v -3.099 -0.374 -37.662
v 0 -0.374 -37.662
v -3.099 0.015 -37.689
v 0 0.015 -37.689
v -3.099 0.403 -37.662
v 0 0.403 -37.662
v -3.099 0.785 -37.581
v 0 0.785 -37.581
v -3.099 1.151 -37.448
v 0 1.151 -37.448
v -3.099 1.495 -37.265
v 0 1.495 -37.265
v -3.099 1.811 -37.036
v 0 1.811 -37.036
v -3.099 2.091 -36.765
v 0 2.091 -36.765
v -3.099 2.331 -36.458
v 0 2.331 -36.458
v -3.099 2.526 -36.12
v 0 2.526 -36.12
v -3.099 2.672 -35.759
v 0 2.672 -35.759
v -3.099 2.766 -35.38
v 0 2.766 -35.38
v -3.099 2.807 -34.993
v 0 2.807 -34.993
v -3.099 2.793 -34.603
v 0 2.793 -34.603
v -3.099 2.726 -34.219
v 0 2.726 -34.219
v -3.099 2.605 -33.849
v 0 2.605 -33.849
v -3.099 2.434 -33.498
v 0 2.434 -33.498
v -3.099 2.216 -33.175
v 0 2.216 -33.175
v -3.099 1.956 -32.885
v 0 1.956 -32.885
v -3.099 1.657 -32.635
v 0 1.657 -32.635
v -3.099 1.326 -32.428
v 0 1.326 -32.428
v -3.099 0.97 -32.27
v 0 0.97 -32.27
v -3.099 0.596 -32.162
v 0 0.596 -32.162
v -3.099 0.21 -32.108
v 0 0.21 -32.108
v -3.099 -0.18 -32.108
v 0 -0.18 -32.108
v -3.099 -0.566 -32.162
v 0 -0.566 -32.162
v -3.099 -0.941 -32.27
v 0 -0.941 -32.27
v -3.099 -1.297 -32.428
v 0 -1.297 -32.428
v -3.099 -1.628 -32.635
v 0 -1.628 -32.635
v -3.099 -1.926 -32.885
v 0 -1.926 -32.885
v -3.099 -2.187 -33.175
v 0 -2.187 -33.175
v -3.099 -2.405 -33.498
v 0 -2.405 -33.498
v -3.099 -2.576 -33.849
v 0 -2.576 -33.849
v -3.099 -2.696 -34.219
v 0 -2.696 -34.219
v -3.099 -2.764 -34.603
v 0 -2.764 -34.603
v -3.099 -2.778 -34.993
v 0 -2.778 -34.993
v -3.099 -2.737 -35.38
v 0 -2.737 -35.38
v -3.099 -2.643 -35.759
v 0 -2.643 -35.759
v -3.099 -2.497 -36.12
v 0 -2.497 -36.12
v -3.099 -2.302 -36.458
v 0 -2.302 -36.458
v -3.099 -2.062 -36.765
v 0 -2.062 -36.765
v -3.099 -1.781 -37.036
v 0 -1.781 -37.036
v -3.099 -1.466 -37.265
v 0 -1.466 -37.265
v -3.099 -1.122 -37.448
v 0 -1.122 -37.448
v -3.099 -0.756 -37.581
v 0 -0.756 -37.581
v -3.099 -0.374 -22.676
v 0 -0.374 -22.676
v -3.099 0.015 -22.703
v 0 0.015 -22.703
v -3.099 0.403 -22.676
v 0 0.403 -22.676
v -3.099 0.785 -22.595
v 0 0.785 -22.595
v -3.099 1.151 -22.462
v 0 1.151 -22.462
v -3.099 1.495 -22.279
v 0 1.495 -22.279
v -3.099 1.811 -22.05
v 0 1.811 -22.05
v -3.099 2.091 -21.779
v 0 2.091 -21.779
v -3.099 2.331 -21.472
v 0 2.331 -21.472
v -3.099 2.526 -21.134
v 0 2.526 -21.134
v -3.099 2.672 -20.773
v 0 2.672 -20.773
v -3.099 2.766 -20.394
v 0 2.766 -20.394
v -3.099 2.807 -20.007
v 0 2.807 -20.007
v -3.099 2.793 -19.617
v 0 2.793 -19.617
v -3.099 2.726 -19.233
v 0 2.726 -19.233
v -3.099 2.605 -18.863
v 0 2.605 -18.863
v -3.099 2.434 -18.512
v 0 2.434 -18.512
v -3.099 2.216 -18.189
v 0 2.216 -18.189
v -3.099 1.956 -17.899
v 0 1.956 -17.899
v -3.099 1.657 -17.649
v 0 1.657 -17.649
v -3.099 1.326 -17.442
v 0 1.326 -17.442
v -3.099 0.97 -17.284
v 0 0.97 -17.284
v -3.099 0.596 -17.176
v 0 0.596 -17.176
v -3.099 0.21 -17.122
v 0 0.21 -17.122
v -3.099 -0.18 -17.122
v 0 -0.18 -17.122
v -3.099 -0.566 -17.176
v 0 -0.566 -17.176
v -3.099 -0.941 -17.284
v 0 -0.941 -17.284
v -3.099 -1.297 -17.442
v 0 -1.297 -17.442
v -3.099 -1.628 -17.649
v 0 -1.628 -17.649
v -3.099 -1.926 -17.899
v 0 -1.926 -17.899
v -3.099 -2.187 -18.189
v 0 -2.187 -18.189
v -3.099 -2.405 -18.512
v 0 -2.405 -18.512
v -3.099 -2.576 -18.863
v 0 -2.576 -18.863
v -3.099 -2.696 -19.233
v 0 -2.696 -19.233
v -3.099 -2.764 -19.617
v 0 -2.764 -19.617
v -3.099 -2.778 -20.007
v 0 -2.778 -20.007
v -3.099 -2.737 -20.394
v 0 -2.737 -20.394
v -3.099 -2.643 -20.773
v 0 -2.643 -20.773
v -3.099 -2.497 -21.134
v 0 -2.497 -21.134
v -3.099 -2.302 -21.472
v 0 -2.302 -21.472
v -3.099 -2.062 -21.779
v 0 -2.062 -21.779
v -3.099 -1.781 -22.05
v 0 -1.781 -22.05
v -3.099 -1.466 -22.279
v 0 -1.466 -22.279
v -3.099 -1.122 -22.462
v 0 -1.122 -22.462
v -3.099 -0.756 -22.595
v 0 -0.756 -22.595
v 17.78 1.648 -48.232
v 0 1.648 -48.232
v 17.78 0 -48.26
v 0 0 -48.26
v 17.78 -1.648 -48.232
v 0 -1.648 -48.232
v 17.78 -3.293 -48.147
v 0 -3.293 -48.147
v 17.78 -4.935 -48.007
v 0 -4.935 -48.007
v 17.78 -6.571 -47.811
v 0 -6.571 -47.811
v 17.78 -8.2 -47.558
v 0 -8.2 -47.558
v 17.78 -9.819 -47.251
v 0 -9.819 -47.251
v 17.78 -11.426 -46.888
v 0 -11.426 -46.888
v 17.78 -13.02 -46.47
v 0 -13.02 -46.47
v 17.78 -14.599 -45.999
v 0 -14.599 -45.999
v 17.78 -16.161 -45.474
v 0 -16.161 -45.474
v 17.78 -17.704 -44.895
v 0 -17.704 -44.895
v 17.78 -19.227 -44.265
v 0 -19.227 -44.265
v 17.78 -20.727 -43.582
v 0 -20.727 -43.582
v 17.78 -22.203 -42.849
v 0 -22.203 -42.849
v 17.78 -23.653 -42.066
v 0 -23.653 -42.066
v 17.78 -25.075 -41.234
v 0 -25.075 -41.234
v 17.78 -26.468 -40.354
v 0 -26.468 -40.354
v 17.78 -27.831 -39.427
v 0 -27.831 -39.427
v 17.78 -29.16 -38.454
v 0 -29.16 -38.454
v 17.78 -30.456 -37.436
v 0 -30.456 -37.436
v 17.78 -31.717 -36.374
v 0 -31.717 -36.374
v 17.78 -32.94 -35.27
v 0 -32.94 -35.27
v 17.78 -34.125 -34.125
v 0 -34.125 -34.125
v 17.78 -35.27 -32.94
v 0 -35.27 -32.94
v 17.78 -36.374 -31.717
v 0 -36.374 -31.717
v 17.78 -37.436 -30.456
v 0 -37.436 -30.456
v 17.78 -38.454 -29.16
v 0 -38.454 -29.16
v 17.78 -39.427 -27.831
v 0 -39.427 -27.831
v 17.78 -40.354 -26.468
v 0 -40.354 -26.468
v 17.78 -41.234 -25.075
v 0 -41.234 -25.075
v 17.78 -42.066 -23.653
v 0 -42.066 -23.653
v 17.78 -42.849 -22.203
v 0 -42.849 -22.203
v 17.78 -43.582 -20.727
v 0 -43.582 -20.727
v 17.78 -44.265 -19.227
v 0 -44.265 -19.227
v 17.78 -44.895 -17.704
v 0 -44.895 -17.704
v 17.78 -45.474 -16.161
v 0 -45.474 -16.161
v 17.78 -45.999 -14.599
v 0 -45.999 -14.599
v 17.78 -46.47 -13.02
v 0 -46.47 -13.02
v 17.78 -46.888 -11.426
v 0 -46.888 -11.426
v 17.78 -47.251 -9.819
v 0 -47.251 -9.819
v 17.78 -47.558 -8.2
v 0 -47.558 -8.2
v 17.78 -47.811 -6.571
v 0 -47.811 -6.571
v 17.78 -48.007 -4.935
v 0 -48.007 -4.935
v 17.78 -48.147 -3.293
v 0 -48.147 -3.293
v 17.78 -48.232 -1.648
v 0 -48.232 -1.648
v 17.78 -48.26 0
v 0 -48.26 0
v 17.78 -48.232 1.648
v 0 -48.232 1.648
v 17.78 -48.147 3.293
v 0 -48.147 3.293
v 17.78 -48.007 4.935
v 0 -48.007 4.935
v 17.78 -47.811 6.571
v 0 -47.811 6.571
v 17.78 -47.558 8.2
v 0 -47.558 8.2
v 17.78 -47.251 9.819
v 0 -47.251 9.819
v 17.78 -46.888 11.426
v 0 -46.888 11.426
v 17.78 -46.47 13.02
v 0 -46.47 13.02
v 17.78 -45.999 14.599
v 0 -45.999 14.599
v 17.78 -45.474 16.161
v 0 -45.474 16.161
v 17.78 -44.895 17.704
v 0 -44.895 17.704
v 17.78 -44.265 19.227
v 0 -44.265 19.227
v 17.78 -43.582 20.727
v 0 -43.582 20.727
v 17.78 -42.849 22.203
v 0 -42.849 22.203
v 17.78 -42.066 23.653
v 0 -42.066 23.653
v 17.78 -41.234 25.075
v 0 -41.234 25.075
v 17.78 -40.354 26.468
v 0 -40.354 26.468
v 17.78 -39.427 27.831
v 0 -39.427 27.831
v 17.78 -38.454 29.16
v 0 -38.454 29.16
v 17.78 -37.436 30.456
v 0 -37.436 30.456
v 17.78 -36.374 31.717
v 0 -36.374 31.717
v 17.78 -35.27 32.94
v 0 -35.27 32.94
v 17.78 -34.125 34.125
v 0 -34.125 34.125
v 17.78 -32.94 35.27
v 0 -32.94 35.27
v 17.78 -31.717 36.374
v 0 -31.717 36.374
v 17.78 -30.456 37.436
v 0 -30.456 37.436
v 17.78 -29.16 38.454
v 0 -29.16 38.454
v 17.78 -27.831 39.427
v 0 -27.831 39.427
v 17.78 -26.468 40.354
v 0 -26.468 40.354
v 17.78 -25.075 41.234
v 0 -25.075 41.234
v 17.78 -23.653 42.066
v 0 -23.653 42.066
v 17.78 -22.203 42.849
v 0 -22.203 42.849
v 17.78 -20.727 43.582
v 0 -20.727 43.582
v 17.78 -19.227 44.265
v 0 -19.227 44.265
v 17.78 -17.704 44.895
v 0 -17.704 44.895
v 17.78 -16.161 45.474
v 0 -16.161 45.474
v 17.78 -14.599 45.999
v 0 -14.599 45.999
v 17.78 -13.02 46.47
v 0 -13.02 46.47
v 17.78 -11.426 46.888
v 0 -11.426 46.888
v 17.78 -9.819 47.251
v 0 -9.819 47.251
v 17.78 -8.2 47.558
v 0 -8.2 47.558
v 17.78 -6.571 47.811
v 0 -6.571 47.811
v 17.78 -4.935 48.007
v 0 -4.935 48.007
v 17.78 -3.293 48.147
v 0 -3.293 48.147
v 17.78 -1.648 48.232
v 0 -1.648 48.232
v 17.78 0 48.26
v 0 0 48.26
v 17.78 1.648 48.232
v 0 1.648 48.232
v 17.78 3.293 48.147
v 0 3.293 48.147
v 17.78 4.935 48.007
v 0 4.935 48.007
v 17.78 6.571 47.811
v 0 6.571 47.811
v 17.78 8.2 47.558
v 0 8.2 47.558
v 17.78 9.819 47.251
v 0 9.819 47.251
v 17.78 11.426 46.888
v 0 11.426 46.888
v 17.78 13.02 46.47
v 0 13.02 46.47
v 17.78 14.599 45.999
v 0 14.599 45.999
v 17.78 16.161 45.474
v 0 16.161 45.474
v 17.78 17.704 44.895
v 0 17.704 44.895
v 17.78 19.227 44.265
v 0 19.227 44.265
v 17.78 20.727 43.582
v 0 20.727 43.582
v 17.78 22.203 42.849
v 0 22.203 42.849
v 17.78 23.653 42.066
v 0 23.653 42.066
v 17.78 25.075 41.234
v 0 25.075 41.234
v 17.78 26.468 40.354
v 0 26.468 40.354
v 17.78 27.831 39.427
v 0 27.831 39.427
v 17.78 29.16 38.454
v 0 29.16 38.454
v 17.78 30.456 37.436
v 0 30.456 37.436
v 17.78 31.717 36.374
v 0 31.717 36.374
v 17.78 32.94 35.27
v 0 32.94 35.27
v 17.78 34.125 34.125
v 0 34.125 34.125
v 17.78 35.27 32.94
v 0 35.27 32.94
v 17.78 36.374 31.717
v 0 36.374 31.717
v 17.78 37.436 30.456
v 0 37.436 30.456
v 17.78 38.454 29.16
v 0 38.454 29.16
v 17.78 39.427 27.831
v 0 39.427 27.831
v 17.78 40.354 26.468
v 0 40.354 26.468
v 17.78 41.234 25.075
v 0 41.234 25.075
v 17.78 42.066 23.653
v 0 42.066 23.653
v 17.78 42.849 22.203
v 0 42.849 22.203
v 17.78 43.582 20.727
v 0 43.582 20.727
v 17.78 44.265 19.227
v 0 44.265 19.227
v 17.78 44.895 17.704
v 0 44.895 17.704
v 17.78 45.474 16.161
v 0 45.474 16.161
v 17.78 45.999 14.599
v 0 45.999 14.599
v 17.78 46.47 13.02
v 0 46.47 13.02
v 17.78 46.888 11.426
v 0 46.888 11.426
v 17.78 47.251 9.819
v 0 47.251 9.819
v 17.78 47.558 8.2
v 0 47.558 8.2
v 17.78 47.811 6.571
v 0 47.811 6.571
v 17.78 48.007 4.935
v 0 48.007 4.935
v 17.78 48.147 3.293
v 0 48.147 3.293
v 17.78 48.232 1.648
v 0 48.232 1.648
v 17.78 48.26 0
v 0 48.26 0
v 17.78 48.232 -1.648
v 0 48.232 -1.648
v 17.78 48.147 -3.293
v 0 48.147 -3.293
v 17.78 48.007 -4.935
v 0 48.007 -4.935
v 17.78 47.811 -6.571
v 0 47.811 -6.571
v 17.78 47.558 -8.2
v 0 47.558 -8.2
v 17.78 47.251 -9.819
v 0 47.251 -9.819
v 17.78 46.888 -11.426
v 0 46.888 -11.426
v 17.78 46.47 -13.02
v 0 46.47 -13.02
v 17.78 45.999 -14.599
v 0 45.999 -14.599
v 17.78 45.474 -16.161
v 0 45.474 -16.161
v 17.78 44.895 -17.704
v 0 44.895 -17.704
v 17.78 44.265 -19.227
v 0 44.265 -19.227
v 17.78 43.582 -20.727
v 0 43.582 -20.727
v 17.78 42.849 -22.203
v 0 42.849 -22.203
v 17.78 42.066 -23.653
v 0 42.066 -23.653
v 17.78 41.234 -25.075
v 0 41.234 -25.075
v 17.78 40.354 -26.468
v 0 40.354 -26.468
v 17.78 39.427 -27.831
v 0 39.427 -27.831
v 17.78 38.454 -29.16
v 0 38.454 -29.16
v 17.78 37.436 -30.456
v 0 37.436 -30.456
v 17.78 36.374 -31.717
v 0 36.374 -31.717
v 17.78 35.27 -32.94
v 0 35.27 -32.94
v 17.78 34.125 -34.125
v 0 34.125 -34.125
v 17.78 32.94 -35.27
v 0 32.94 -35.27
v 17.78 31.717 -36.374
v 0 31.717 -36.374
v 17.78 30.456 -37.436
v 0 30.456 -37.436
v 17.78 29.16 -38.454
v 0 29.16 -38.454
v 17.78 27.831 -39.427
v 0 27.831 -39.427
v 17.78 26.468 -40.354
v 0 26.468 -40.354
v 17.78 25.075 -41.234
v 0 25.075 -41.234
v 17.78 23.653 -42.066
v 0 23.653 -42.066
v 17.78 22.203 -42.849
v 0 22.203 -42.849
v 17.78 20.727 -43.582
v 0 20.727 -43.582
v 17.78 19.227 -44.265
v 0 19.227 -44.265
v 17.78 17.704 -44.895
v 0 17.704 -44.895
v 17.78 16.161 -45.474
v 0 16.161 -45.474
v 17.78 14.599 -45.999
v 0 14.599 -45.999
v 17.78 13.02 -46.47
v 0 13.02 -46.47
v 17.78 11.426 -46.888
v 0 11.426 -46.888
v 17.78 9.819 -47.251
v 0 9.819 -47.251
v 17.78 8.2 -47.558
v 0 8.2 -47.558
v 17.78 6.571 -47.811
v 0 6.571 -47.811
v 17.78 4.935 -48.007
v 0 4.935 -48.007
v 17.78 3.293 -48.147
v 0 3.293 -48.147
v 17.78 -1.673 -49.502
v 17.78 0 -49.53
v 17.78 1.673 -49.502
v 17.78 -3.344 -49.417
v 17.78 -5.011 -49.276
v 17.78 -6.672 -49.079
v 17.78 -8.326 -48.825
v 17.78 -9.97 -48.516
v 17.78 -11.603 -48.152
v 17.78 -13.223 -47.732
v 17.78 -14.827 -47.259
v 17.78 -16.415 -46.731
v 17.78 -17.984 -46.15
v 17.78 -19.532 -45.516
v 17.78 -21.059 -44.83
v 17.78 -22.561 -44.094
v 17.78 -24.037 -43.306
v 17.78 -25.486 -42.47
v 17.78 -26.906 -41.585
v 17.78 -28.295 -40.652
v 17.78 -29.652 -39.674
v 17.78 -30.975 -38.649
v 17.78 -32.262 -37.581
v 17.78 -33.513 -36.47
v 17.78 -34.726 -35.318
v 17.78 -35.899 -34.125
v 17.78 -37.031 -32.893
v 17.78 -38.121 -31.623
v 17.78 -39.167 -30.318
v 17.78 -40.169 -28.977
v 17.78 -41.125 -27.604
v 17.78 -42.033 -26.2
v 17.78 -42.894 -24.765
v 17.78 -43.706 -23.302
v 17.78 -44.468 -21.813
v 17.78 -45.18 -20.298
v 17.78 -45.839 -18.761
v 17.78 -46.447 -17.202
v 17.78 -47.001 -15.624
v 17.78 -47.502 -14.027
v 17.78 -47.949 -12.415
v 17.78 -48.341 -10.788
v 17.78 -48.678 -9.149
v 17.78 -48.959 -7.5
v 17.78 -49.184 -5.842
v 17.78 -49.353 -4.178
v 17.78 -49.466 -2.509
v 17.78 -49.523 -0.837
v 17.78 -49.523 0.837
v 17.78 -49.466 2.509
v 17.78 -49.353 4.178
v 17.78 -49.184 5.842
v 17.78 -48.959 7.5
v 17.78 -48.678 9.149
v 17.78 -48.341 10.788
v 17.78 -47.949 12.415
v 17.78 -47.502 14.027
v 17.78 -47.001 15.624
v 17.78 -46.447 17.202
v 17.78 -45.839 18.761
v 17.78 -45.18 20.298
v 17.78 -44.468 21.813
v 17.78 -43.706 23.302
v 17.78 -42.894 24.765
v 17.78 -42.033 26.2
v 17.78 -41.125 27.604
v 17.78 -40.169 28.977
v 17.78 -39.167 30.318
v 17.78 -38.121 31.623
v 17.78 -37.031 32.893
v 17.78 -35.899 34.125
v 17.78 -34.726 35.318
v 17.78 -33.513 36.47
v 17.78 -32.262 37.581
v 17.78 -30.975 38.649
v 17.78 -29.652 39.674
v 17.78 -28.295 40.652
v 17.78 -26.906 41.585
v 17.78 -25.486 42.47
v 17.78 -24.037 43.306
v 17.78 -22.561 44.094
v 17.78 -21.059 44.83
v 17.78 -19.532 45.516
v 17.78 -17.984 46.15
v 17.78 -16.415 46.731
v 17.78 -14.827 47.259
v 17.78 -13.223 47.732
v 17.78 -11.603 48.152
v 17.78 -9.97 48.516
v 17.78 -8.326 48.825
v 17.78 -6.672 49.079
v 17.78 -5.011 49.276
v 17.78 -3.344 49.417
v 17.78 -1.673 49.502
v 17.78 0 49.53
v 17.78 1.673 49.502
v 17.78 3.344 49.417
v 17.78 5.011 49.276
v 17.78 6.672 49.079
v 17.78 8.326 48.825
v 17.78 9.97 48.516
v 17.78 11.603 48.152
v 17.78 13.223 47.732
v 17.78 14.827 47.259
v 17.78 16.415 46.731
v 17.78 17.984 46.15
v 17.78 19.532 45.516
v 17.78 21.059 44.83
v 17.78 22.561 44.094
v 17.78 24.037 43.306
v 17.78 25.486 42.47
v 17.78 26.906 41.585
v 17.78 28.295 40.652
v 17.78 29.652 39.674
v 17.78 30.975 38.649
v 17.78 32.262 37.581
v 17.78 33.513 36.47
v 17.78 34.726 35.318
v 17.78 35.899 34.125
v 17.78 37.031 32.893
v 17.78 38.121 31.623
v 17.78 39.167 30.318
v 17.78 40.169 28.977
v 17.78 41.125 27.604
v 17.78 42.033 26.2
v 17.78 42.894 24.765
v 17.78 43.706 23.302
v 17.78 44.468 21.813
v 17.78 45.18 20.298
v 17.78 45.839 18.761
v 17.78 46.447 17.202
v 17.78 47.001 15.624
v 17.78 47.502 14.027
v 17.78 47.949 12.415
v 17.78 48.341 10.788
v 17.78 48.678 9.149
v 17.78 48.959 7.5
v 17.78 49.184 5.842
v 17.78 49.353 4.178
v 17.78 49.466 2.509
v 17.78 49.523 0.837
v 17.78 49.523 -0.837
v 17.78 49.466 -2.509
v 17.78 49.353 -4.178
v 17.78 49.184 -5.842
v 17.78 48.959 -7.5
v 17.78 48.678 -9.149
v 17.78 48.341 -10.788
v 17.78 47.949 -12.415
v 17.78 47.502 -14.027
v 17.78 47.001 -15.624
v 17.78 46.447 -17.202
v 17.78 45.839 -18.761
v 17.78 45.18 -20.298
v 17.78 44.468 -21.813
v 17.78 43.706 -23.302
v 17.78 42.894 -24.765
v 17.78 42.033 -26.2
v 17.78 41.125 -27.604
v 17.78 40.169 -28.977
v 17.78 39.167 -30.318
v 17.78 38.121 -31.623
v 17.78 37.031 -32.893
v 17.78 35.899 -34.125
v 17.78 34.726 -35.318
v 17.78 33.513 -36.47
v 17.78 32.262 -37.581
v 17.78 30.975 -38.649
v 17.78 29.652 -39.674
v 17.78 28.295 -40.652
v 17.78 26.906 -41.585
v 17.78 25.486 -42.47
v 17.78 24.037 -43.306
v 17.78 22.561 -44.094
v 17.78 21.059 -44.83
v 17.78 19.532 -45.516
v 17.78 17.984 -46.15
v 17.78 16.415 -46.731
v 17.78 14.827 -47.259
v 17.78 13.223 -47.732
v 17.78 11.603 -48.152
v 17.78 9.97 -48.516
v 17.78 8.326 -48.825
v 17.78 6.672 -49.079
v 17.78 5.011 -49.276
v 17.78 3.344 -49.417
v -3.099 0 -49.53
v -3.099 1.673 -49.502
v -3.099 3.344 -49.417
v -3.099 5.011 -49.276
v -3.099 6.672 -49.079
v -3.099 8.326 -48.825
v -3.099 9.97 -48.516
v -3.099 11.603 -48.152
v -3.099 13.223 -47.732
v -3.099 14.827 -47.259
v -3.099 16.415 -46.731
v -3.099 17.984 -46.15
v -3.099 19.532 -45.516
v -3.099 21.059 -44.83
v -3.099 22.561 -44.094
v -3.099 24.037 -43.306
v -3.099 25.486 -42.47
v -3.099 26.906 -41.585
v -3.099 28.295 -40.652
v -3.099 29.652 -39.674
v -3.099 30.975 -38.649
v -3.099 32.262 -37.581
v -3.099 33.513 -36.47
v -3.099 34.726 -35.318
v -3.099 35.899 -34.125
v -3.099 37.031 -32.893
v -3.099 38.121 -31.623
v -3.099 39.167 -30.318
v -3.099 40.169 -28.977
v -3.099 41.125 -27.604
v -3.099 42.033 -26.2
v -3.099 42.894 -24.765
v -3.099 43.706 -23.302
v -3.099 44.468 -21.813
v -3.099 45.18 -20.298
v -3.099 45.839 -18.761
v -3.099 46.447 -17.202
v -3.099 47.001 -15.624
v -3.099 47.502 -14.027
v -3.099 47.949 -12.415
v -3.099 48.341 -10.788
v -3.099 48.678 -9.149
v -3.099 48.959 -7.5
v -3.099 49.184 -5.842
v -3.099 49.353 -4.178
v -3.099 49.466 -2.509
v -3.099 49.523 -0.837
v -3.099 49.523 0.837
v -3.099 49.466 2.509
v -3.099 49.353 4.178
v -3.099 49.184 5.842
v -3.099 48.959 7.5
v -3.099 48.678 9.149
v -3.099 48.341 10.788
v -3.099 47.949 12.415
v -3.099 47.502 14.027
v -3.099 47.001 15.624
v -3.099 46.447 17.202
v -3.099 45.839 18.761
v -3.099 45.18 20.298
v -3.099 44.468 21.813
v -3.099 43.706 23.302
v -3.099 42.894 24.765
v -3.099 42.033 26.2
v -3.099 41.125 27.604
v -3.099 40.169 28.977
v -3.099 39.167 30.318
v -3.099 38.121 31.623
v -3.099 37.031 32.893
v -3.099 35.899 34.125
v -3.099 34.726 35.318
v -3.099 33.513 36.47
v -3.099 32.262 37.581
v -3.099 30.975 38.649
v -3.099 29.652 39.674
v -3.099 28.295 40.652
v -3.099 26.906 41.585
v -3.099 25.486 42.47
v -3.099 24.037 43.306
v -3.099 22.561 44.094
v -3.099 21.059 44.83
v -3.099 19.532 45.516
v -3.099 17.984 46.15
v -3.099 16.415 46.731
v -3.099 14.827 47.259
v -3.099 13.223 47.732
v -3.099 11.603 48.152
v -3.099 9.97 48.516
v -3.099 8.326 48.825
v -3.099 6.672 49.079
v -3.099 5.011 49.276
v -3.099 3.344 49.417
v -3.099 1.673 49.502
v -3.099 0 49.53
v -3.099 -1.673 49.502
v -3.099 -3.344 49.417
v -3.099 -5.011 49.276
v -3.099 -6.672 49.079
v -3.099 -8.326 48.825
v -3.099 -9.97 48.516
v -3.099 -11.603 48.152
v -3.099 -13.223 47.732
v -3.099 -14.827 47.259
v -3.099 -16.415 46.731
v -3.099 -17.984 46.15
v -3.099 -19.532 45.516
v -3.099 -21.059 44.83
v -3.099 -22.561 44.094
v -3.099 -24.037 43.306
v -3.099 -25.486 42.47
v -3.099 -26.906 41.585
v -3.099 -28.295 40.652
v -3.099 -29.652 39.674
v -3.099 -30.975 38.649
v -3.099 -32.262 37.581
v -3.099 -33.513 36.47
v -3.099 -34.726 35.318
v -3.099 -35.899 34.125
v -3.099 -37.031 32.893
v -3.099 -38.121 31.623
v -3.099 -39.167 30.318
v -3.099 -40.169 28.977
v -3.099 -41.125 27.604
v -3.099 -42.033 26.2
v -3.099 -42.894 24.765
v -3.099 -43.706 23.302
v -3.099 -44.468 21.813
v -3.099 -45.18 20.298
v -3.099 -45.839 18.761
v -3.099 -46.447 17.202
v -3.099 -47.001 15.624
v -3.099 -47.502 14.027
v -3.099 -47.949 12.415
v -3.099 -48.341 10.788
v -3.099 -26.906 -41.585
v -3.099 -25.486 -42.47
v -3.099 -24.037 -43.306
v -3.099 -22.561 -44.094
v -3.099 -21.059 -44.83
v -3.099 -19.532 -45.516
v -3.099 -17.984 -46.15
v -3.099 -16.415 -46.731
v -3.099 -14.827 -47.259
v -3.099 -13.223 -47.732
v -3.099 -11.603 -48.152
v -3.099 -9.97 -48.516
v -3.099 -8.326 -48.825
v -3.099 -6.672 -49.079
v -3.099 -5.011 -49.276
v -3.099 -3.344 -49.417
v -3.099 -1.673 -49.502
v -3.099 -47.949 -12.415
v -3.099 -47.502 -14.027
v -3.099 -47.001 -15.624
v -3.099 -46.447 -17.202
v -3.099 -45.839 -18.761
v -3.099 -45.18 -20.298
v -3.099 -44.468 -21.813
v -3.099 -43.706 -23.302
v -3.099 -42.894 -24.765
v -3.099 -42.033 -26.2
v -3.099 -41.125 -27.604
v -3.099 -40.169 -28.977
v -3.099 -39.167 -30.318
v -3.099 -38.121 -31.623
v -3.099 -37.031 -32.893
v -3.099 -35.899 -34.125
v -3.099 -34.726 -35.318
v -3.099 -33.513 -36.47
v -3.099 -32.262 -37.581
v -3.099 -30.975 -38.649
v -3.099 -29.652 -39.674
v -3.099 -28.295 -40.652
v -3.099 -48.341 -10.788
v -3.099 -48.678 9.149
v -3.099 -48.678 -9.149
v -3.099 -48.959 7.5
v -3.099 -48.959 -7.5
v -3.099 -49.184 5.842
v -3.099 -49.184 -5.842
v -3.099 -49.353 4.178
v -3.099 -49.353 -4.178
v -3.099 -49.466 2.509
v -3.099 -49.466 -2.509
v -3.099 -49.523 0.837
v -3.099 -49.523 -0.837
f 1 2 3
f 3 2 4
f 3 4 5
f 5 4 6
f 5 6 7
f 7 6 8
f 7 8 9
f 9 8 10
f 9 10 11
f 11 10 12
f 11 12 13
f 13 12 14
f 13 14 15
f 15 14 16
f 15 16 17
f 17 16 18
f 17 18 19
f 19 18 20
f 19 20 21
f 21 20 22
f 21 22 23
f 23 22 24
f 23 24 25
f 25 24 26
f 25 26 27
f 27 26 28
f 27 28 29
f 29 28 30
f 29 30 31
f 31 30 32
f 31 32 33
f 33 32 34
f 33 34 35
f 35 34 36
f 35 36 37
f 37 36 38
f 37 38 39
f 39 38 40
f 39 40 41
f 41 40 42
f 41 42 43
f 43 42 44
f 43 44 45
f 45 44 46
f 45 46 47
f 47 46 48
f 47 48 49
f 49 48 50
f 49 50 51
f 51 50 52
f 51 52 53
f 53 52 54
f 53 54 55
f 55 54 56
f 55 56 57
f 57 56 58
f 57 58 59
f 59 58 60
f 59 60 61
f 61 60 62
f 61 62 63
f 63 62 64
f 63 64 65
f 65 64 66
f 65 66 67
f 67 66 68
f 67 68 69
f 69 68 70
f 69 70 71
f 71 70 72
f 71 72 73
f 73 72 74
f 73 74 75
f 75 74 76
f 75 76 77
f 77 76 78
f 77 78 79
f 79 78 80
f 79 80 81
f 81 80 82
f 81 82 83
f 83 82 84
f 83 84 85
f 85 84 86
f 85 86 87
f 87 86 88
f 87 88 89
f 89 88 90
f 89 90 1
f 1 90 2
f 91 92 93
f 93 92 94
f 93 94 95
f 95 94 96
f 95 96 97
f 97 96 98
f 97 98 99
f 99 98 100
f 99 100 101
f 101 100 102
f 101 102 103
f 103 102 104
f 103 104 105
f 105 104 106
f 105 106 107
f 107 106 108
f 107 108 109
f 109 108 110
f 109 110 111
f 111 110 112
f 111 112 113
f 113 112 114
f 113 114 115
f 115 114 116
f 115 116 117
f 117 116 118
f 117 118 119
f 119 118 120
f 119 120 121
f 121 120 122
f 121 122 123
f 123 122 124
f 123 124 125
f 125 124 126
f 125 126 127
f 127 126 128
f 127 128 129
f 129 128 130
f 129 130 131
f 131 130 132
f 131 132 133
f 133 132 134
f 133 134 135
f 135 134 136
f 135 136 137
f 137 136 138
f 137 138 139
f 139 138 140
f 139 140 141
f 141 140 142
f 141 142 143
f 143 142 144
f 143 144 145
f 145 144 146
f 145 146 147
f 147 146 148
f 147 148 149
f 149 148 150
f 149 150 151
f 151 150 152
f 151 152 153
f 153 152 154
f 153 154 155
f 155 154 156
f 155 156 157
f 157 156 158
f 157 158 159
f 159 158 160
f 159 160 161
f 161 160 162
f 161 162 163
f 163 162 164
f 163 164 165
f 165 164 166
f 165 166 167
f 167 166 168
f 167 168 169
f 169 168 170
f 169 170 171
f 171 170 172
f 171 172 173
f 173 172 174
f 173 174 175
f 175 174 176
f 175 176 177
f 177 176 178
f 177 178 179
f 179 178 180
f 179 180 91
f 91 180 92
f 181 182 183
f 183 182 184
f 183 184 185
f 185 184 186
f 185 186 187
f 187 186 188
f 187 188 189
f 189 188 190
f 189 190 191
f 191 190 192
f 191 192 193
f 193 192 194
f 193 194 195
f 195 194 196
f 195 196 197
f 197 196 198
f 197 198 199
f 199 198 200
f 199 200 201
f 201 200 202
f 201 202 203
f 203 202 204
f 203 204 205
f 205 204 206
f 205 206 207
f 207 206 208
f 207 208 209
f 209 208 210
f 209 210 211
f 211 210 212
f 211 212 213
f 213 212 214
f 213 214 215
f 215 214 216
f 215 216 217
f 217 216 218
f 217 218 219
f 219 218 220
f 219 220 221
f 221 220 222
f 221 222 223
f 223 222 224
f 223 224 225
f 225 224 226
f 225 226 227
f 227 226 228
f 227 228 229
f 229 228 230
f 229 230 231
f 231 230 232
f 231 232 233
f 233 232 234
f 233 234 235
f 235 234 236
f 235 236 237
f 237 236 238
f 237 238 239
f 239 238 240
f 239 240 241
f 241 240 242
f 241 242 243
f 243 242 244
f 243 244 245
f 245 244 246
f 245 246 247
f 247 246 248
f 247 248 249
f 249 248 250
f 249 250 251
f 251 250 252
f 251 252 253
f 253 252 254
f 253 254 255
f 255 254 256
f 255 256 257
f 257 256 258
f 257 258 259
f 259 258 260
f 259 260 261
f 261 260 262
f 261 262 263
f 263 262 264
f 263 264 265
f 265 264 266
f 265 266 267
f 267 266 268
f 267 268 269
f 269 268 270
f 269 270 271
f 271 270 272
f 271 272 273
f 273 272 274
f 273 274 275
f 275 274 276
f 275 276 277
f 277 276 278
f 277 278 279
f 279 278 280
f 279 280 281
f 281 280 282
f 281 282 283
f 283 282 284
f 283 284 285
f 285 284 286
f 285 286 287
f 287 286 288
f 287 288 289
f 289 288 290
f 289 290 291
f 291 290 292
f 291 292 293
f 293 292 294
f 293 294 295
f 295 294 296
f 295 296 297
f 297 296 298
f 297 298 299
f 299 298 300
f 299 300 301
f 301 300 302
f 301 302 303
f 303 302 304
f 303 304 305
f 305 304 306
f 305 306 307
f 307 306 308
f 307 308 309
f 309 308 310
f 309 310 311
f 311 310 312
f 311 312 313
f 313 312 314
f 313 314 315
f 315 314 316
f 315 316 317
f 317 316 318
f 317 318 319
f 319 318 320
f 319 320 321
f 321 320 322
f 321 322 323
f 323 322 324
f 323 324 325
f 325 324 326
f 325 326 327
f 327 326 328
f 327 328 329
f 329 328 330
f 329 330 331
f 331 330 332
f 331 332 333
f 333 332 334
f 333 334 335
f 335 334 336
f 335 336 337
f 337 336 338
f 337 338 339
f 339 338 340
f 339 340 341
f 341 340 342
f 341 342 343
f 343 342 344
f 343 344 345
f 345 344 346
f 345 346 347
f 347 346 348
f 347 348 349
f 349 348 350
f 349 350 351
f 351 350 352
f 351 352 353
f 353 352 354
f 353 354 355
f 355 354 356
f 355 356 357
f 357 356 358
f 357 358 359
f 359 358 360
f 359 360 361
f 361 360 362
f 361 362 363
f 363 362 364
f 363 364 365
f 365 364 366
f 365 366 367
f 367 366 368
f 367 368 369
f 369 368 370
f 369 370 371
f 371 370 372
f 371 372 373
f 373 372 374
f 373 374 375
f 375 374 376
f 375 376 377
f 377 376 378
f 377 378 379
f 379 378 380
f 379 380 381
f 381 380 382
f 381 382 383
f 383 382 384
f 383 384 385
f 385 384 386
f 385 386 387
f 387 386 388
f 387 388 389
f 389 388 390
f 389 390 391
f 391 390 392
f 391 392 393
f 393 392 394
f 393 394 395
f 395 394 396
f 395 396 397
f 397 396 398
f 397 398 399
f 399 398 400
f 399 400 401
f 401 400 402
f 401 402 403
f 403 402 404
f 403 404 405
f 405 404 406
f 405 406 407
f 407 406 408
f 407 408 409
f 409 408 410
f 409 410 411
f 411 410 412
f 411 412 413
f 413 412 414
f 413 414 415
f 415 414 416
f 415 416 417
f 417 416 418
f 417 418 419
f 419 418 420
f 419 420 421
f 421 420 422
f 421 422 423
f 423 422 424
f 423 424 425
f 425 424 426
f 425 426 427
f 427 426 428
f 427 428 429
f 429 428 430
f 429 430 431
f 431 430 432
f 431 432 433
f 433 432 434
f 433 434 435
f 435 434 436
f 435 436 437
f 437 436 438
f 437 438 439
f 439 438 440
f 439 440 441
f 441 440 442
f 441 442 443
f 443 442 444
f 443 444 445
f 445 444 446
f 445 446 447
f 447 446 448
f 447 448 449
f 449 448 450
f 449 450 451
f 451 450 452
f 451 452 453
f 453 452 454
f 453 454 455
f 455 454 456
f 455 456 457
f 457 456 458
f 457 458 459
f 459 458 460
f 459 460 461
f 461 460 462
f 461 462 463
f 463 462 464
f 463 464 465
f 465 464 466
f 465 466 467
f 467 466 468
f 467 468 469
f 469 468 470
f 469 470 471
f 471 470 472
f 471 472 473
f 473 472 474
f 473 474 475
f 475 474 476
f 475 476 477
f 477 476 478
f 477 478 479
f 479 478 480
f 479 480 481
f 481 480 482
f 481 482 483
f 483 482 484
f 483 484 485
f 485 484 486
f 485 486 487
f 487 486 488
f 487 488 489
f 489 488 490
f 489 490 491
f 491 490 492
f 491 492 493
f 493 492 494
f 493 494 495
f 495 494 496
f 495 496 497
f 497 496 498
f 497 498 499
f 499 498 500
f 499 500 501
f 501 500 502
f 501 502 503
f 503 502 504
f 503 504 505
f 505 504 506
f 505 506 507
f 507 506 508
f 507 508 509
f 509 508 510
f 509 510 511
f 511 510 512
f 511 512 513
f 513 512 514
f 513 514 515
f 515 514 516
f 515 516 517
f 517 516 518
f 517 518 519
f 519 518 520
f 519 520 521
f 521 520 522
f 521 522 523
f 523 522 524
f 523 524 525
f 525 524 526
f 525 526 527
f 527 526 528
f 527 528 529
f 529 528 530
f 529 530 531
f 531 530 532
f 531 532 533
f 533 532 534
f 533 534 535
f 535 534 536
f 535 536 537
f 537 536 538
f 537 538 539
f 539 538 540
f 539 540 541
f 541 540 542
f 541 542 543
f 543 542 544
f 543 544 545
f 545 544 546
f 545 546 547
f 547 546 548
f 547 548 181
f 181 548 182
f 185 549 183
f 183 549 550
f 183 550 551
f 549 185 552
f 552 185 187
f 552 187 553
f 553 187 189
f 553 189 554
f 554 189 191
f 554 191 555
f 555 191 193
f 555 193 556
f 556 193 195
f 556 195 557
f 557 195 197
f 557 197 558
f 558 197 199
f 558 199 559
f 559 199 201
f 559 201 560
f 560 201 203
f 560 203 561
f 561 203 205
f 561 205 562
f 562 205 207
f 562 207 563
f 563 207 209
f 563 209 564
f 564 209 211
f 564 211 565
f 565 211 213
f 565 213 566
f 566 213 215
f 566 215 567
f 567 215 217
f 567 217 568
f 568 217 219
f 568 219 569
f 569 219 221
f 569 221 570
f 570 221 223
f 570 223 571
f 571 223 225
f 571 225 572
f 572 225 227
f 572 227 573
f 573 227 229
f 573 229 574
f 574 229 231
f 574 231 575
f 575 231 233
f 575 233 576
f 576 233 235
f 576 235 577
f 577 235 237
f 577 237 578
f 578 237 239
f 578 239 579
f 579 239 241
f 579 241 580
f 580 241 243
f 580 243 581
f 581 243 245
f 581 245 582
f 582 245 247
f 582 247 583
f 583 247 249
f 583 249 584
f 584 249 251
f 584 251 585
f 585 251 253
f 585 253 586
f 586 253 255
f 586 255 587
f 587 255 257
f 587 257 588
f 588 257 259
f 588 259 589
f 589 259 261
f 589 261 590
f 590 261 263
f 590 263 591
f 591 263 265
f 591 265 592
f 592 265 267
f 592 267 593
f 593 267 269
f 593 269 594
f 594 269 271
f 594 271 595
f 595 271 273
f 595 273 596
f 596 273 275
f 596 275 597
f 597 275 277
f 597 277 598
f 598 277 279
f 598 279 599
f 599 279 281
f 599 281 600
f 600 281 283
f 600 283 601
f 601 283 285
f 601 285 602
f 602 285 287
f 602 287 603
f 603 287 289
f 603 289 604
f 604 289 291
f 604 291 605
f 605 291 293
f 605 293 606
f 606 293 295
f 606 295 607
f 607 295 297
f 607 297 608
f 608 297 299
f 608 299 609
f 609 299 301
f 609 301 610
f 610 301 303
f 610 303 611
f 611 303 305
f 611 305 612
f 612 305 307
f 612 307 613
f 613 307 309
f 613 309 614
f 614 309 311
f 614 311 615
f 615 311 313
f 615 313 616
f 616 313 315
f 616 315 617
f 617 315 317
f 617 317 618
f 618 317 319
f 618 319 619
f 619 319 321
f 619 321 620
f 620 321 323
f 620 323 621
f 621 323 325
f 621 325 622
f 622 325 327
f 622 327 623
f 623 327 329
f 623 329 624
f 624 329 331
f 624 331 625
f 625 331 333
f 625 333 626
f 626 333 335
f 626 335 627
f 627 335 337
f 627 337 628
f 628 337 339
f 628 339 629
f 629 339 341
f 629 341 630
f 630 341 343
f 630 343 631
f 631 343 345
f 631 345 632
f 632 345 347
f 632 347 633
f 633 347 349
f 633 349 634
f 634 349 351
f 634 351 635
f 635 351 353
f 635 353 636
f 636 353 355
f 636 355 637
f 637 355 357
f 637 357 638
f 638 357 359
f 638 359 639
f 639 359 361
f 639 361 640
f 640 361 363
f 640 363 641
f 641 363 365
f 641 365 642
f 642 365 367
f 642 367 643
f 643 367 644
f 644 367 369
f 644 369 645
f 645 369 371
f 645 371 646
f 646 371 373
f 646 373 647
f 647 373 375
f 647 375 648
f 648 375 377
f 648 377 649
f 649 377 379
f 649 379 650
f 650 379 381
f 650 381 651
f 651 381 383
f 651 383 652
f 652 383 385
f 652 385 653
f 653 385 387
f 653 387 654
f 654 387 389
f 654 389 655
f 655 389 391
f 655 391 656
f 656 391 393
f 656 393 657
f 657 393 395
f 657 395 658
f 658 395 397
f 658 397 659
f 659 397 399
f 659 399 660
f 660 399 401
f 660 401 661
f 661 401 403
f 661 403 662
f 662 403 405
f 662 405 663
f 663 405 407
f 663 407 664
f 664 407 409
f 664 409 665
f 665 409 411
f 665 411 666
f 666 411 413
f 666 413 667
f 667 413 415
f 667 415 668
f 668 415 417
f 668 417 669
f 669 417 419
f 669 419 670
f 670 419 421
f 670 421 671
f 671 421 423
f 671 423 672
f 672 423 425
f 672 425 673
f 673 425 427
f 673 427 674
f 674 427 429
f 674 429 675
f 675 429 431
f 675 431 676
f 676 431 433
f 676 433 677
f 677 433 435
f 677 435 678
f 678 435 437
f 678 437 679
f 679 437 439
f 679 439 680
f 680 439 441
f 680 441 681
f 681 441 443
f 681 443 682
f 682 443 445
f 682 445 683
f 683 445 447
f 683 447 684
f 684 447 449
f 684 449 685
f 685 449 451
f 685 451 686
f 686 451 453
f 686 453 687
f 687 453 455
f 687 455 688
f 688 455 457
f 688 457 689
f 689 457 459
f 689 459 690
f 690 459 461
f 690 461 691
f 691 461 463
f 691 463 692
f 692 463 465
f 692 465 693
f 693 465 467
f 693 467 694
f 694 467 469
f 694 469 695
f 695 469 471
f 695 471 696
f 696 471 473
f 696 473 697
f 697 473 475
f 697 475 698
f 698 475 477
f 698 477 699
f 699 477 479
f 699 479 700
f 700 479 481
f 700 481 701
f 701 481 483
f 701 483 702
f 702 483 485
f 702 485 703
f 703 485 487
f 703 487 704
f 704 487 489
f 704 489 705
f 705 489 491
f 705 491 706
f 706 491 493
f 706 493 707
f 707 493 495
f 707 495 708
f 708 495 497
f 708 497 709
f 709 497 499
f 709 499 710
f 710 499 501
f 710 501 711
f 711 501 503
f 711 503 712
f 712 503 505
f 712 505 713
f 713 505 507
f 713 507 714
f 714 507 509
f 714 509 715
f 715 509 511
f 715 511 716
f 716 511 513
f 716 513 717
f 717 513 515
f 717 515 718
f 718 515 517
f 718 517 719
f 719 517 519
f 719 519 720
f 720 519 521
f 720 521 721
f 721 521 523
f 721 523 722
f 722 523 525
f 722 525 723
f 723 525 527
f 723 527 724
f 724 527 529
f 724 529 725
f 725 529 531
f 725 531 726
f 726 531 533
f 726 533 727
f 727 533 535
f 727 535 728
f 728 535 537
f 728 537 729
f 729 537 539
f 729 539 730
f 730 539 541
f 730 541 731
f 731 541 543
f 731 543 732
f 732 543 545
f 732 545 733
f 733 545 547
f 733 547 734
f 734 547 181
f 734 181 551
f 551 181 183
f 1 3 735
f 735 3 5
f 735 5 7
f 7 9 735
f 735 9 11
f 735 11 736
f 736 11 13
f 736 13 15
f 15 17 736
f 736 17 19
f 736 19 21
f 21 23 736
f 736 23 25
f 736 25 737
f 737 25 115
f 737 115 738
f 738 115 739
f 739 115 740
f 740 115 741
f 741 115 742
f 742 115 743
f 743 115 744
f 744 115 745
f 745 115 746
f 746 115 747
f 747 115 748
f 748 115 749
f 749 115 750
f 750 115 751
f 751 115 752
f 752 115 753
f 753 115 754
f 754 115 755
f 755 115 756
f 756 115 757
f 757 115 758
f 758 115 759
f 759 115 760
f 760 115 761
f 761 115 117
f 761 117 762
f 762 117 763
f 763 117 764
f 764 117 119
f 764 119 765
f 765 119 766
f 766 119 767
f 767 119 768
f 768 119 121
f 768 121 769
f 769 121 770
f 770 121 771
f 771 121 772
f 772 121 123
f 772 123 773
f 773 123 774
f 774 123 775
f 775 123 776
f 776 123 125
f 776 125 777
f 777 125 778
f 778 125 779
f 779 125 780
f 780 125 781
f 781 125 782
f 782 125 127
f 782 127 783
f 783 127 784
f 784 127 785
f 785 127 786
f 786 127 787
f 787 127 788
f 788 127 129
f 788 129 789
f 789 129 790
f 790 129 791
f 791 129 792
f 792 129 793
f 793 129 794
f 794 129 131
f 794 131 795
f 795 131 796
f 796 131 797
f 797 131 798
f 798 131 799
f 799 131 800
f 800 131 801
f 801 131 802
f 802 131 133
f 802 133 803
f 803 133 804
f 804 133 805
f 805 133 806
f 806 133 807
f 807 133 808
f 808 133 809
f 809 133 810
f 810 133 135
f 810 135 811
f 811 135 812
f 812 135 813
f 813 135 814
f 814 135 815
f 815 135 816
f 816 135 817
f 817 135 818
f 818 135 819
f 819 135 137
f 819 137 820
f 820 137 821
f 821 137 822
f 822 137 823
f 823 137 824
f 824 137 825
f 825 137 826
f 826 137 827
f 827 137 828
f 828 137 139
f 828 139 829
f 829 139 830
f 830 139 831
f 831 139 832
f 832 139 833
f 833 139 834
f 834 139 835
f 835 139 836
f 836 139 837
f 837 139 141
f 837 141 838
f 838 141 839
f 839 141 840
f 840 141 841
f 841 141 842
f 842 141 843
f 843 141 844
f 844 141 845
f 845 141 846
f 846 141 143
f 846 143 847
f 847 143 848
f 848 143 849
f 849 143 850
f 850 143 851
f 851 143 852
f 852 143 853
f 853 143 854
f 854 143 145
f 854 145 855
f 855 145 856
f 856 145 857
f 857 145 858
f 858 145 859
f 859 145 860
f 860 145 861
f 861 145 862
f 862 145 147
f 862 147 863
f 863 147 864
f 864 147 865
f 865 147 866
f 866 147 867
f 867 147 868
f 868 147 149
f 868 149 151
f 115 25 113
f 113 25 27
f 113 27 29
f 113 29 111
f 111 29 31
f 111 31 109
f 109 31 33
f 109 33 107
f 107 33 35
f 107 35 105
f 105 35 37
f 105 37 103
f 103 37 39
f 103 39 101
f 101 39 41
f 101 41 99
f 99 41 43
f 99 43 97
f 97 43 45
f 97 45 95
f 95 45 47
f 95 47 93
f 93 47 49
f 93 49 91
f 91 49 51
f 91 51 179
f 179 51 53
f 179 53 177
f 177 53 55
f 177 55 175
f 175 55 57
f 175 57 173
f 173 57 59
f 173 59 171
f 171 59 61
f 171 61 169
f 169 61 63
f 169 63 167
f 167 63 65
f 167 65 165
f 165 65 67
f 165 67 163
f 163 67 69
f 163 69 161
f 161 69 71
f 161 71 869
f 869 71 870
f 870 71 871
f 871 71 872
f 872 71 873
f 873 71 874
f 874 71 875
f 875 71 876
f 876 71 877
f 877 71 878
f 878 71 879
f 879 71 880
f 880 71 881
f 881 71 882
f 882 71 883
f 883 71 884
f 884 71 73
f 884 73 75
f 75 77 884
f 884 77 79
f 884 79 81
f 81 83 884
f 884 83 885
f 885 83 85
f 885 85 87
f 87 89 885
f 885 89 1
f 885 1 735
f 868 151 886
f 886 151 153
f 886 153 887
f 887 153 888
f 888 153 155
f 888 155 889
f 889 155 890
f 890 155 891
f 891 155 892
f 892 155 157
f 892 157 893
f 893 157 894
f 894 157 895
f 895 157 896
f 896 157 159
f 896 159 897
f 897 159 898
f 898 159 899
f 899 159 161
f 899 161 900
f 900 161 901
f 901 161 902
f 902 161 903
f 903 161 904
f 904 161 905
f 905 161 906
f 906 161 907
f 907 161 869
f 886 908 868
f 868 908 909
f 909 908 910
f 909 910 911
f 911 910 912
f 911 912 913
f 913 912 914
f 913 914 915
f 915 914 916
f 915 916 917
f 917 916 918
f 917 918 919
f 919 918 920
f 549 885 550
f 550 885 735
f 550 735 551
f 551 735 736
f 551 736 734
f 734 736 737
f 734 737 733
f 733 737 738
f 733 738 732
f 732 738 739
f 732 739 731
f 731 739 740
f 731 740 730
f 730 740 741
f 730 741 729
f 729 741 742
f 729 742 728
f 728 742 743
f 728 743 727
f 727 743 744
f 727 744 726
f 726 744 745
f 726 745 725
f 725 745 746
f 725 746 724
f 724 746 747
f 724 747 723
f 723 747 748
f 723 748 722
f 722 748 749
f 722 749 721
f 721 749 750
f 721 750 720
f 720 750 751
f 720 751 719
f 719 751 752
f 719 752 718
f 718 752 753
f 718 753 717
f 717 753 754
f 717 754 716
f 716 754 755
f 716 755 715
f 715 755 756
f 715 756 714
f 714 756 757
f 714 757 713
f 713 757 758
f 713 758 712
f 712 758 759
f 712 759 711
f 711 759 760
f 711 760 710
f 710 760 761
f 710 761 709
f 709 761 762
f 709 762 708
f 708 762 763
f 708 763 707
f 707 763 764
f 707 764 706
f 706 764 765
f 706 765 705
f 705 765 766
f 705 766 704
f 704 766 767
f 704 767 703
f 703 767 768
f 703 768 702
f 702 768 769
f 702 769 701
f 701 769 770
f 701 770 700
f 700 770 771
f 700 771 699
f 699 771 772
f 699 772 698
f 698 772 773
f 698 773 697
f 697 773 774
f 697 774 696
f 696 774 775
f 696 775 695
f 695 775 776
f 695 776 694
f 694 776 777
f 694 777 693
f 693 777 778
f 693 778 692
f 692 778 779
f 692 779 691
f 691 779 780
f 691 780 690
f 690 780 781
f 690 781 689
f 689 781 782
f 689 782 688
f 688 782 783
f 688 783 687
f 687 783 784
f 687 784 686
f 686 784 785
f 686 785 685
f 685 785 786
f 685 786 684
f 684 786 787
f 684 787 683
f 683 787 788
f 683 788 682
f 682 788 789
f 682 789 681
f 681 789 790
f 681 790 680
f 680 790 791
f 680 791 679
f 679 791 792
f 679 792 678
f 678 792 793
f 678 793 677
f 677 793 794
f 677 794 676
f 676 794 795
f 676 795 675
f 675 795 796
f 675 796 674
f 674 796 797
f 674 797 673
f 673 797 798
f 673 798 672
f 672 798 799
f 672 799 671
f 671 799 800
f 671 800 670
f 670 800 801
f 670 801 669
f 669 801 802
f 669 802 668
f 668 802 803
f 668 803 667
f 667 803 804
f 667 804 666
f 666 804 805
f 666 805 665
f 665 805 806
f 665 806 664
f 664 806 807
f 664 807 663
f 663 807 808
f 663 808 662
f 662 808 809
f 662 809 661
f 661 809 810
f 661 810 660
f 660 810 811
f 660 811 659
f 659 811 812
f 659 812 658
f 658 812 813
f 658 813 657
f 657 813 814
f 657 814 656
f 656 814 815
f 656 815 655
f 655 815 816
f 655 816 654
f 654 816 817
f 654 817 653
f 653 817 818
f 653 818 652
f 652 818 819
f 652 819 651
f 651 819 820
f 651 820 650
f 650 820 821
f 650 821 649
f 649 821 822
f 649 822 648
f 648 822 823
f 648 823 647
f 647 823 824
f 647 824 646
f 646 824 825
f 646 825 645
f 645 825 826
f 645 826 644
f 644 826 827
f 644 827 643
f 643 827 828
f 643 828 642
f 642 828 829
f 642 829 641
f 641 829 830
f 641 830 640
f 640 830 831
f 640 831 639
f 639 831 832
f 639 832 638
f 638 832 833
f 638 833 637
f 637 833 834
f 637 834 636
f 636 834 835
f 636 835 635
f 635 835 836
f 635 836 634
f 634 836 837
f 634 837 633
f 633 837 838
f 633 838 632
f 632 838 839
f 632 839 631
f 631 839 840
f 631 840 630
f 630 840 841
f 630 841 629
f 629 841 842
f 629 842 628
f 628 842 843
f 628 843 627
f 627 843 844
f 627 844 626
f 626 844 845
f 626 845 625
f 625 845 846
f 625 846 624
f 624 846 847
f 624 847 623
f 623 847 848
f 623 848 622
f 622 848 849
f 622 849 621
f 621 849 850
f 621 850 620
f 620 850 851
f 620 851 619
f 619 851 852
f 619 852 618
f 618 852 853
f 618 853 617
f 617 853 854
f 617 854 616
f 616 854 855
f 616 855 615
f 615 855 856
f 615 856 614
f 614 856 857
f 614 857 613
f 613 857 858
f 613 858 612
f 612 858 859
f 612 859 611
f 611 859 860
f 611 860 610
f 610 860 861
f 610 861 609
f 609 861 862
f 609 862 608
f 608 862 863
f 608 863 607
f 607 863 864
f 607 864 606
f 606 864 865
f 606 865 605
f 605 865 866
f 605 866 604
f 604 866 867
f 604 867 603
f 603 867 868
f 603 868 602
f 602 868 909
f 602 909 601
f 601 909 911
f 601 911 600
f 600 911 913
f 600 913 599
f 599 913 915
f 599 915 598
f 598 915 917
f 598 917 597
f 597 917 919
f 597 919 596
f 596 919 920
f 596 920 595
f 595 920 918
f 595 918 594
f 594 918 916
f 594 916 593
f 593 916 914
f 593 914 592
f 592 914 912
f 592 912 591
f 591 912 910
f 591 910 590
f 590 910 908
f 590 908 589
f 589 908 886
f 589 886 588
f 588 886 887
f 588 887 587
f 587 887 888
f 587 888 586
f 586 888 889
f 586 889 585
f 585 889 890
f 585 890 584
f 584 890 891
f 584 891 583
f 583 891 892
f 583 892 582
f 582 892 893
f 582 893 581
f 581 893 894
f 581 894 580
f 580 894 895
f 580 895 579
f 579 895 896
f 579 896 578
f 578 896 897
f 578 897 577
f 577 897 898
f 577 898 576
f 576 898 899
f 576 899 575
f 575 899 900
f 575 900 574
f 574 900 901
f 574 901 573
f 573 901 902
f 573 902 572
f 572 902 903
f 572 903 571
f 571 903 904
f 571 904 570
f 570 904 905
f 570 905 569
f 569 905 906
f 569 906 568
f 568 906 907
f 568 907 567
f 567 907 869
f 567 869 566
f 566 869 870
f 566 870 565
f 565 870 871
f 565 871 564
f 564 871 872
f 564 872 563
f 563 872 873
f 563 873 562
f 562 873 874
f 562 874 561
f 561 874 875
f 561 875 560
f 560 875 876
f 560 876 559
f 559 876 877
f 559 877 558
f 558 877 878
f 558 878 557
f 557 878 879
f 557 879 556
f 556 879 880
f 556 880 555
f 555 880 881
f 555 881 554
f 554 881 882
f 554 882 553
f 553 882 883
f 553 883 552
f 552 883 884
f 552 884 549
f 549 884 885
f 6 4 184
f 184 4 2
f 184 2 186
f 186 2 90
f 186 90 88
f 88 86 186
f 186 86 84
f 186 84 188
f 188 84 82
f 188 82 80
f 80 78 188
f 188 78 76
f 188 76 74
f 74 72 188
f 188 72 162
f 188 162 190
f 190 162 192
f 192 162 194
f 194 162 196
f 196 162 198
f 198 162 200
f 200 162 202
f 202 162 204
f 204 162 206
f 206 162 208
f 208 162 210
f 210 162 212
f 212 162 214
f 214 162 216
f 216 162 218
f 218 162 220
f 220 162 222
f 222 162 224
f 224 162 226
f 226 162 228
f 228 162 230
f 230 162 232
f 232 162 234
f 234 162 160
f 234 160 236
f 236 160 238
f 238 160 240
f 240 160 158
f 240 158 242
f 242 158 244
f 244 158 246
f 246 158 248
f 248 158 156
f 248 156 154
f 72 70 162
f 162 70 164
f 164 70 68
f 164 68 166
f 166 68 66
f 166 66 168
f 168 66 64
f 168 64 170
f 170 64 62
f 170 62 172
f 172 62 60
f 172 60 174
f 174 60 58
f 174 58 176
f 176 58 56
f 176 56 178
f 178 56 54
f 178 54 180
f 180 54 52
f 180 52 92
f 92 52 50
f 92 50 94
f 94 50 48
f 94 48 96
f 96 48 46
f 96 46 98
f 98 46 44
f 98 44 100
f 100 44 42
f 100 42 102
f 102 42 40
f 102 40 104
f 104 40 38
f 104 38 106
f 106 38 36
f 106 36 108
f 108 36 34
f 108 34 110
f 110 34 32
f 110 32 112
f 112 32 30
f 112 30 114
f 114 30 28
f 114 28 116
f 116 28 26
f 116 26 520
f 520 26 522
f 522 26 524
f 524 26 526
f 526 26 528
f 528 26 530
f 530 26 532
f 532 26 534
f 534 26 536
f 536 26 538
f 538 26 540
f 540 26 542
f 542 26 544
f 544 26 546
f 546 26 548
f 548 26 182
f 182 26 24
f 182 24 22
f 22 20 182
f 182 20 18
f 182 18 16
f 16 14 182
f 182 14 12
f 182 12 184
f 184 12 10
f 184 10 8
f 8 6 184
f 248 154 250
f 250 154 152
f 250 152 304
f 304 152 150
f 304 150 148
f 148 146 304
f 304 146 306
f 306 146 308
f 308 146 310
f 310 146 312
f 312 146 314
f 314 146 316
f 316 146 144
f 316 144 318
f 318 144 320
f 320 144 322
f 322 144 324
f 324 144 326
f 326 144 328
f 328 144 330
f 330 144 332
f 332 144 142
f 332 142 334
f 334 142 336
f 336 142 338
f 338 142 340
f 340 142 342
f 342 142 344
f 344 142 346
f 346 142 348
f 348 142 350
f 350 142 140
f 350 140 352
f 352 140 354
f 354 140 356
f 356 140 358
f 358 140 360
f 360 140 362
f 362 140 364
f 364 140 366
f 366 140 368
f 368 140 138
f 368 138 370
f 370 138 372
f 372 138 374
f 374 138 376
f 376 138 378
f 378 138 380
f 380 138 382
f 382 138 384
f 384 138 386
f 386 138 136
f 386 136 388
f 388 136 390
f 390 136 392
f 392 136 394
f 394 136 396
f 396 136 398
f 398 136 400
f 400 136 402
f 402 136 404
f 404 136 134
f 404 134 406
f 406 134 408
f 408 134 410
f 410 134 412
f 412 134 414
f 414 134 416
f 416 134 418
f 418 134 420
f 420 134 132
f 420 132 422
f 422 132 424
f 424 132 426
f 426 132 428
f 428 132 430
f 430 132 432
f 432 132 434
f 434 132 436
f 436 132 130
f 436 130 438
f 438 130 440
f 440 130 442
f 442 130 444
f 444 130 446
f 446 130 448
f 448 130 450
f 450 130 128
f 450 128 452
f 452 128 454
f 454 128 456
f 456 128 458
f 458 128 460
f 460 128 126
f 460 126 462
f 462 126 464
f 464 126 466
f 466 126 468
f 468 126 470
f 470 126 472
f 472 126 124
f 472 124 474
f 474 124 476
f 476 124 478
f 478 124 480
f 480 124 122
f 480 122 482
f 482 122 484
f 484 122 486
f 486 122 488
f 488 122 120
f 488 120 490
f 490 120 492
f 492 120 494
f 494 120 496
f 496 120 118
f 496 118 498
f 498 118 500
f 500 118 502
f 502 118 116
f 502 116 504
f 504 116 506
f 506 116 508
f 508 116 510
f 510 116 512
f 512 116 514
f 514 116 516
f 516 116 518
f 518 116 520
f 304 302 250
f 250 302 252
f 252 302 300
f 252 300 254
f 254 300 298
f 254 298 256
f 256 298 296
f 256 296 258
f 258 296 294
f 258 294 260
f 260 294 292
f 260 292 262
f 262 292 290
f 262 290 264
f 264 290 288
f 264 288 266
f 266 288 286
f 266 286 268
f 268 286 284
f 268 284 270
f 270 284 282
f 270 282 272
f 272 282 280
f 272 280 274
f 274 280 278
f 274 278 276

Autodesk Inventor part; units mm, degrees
ref_plane "YZ Plane" through (0, 0, 0) normal (1, 0, 0) x (0, 1, 0)
ref_plane "XZ Plane" through (0, 0, 0) normal (0, 1, 0) x (-1, 0, 0)
ref_plane "XY Plane" through (0, 0, 0) normal (0, 0, 1) x (1, 0, 0)
sketch "Sketch1" plane through (0, 0, 0) normal (0, 1, 0) x (-1, 0, 0)
  line L0 (0, 0) -> (3.0988, 0)
  line L1 (3.0988, 0) -> (3.0988, -47.498)
  line L2 (3.0988, -47.498) -> (0, -47.498)
  line L3 (0, -47.498) -> (0, 0)
  line L4 (3.0988, 0) -> (0, 0)
  line L5 (0, 0) -> (0, -49.53)
  line L6 (0, -49.53) -> (3.0988, -49.53)
  line L7 (3.0988, -49.53) -> (3.0988, 0)
  dimension "d0" = 3.0988
  dimension "d1" = 47.498
  dimension "d2" = 49.53
revolve "top base" add sketch "Sketch1" angle 360 about axis through (-3.0988, 0, 0) along (1, 0, 0)
sketch "outer wall" plane through (0, 0, 0) normal (1, 0, 0) x (0, 0, -1)
  circle A0 centre (0, 0) radius 48.26
  circle A1 centre (0, 0) radius 49.53
  dimension "d4" = 96.52
  dimension "d7" = 99.06
extrude "top outer wall" add sketch "outer wall" along normal blind 17.78
sketch "top circles" plane through (0, 0, 0) normal (1, 0, 0) x (0, 0, -1)
  line L0 (27.4022, -6.3354) -> (27.4022, 6.3646) construction
  circle A0 centre (34.8952, 0.0146) radius 2.794
  circle A1 centre (19.9092, 0.0146) radius 2.794
  line L1 (22.7032, 0.0146) -> (32.1012, 0.0146) construction
  line L2 (14.7022, -6.3354) -> (40.1022, -6.3354) construction
  line L3 (40.1022, -6.3354) -> (40.1022, 6.3646) construction
  line L4 (40.1022, 6.3646) -> (14.7022, 6.3646) construction
  line L5 (14.7022, 6.3646) -> (14.7022, -6.3354) construction
  line L6 (14.7022, -6.3354) -> (40.1022, 6.3646) construction
  line L7 (40.1022, -6.3354) -> (14.7022, 6.3646) construction
  line L8 (40.065, -6.3646) -> (-40.065, -6.3646)
  line L9 (-40.065, -6.3646) -> (-40.065, 6.3646)
  line L10 (-40.065, 6.3646) -> (40.065, 6.3646)
  line L11 (40.065, 6.3646) -> (40.065, -6.3646)
  line L12 (40.065, -6.3646) -> (-40.065, 6.3646) construction
  line L13 (-40.065, -6.3646) -> (40.065, 6.3646) construction
  circle A2 centre (0, 0) radius 48.26 projected
  point P0 (27.4022, 0.0146)
  dimension "d30" = 9.398
  dimension "d31" = 8.001
  dimension "d32" = 8.001
  dimension "d33" = 80.13
extrude "Top holes" cut sketch "top circles" against normal blind 25.4 contours A0 | A1
properties part number "Top Sensor Base v1.2"
